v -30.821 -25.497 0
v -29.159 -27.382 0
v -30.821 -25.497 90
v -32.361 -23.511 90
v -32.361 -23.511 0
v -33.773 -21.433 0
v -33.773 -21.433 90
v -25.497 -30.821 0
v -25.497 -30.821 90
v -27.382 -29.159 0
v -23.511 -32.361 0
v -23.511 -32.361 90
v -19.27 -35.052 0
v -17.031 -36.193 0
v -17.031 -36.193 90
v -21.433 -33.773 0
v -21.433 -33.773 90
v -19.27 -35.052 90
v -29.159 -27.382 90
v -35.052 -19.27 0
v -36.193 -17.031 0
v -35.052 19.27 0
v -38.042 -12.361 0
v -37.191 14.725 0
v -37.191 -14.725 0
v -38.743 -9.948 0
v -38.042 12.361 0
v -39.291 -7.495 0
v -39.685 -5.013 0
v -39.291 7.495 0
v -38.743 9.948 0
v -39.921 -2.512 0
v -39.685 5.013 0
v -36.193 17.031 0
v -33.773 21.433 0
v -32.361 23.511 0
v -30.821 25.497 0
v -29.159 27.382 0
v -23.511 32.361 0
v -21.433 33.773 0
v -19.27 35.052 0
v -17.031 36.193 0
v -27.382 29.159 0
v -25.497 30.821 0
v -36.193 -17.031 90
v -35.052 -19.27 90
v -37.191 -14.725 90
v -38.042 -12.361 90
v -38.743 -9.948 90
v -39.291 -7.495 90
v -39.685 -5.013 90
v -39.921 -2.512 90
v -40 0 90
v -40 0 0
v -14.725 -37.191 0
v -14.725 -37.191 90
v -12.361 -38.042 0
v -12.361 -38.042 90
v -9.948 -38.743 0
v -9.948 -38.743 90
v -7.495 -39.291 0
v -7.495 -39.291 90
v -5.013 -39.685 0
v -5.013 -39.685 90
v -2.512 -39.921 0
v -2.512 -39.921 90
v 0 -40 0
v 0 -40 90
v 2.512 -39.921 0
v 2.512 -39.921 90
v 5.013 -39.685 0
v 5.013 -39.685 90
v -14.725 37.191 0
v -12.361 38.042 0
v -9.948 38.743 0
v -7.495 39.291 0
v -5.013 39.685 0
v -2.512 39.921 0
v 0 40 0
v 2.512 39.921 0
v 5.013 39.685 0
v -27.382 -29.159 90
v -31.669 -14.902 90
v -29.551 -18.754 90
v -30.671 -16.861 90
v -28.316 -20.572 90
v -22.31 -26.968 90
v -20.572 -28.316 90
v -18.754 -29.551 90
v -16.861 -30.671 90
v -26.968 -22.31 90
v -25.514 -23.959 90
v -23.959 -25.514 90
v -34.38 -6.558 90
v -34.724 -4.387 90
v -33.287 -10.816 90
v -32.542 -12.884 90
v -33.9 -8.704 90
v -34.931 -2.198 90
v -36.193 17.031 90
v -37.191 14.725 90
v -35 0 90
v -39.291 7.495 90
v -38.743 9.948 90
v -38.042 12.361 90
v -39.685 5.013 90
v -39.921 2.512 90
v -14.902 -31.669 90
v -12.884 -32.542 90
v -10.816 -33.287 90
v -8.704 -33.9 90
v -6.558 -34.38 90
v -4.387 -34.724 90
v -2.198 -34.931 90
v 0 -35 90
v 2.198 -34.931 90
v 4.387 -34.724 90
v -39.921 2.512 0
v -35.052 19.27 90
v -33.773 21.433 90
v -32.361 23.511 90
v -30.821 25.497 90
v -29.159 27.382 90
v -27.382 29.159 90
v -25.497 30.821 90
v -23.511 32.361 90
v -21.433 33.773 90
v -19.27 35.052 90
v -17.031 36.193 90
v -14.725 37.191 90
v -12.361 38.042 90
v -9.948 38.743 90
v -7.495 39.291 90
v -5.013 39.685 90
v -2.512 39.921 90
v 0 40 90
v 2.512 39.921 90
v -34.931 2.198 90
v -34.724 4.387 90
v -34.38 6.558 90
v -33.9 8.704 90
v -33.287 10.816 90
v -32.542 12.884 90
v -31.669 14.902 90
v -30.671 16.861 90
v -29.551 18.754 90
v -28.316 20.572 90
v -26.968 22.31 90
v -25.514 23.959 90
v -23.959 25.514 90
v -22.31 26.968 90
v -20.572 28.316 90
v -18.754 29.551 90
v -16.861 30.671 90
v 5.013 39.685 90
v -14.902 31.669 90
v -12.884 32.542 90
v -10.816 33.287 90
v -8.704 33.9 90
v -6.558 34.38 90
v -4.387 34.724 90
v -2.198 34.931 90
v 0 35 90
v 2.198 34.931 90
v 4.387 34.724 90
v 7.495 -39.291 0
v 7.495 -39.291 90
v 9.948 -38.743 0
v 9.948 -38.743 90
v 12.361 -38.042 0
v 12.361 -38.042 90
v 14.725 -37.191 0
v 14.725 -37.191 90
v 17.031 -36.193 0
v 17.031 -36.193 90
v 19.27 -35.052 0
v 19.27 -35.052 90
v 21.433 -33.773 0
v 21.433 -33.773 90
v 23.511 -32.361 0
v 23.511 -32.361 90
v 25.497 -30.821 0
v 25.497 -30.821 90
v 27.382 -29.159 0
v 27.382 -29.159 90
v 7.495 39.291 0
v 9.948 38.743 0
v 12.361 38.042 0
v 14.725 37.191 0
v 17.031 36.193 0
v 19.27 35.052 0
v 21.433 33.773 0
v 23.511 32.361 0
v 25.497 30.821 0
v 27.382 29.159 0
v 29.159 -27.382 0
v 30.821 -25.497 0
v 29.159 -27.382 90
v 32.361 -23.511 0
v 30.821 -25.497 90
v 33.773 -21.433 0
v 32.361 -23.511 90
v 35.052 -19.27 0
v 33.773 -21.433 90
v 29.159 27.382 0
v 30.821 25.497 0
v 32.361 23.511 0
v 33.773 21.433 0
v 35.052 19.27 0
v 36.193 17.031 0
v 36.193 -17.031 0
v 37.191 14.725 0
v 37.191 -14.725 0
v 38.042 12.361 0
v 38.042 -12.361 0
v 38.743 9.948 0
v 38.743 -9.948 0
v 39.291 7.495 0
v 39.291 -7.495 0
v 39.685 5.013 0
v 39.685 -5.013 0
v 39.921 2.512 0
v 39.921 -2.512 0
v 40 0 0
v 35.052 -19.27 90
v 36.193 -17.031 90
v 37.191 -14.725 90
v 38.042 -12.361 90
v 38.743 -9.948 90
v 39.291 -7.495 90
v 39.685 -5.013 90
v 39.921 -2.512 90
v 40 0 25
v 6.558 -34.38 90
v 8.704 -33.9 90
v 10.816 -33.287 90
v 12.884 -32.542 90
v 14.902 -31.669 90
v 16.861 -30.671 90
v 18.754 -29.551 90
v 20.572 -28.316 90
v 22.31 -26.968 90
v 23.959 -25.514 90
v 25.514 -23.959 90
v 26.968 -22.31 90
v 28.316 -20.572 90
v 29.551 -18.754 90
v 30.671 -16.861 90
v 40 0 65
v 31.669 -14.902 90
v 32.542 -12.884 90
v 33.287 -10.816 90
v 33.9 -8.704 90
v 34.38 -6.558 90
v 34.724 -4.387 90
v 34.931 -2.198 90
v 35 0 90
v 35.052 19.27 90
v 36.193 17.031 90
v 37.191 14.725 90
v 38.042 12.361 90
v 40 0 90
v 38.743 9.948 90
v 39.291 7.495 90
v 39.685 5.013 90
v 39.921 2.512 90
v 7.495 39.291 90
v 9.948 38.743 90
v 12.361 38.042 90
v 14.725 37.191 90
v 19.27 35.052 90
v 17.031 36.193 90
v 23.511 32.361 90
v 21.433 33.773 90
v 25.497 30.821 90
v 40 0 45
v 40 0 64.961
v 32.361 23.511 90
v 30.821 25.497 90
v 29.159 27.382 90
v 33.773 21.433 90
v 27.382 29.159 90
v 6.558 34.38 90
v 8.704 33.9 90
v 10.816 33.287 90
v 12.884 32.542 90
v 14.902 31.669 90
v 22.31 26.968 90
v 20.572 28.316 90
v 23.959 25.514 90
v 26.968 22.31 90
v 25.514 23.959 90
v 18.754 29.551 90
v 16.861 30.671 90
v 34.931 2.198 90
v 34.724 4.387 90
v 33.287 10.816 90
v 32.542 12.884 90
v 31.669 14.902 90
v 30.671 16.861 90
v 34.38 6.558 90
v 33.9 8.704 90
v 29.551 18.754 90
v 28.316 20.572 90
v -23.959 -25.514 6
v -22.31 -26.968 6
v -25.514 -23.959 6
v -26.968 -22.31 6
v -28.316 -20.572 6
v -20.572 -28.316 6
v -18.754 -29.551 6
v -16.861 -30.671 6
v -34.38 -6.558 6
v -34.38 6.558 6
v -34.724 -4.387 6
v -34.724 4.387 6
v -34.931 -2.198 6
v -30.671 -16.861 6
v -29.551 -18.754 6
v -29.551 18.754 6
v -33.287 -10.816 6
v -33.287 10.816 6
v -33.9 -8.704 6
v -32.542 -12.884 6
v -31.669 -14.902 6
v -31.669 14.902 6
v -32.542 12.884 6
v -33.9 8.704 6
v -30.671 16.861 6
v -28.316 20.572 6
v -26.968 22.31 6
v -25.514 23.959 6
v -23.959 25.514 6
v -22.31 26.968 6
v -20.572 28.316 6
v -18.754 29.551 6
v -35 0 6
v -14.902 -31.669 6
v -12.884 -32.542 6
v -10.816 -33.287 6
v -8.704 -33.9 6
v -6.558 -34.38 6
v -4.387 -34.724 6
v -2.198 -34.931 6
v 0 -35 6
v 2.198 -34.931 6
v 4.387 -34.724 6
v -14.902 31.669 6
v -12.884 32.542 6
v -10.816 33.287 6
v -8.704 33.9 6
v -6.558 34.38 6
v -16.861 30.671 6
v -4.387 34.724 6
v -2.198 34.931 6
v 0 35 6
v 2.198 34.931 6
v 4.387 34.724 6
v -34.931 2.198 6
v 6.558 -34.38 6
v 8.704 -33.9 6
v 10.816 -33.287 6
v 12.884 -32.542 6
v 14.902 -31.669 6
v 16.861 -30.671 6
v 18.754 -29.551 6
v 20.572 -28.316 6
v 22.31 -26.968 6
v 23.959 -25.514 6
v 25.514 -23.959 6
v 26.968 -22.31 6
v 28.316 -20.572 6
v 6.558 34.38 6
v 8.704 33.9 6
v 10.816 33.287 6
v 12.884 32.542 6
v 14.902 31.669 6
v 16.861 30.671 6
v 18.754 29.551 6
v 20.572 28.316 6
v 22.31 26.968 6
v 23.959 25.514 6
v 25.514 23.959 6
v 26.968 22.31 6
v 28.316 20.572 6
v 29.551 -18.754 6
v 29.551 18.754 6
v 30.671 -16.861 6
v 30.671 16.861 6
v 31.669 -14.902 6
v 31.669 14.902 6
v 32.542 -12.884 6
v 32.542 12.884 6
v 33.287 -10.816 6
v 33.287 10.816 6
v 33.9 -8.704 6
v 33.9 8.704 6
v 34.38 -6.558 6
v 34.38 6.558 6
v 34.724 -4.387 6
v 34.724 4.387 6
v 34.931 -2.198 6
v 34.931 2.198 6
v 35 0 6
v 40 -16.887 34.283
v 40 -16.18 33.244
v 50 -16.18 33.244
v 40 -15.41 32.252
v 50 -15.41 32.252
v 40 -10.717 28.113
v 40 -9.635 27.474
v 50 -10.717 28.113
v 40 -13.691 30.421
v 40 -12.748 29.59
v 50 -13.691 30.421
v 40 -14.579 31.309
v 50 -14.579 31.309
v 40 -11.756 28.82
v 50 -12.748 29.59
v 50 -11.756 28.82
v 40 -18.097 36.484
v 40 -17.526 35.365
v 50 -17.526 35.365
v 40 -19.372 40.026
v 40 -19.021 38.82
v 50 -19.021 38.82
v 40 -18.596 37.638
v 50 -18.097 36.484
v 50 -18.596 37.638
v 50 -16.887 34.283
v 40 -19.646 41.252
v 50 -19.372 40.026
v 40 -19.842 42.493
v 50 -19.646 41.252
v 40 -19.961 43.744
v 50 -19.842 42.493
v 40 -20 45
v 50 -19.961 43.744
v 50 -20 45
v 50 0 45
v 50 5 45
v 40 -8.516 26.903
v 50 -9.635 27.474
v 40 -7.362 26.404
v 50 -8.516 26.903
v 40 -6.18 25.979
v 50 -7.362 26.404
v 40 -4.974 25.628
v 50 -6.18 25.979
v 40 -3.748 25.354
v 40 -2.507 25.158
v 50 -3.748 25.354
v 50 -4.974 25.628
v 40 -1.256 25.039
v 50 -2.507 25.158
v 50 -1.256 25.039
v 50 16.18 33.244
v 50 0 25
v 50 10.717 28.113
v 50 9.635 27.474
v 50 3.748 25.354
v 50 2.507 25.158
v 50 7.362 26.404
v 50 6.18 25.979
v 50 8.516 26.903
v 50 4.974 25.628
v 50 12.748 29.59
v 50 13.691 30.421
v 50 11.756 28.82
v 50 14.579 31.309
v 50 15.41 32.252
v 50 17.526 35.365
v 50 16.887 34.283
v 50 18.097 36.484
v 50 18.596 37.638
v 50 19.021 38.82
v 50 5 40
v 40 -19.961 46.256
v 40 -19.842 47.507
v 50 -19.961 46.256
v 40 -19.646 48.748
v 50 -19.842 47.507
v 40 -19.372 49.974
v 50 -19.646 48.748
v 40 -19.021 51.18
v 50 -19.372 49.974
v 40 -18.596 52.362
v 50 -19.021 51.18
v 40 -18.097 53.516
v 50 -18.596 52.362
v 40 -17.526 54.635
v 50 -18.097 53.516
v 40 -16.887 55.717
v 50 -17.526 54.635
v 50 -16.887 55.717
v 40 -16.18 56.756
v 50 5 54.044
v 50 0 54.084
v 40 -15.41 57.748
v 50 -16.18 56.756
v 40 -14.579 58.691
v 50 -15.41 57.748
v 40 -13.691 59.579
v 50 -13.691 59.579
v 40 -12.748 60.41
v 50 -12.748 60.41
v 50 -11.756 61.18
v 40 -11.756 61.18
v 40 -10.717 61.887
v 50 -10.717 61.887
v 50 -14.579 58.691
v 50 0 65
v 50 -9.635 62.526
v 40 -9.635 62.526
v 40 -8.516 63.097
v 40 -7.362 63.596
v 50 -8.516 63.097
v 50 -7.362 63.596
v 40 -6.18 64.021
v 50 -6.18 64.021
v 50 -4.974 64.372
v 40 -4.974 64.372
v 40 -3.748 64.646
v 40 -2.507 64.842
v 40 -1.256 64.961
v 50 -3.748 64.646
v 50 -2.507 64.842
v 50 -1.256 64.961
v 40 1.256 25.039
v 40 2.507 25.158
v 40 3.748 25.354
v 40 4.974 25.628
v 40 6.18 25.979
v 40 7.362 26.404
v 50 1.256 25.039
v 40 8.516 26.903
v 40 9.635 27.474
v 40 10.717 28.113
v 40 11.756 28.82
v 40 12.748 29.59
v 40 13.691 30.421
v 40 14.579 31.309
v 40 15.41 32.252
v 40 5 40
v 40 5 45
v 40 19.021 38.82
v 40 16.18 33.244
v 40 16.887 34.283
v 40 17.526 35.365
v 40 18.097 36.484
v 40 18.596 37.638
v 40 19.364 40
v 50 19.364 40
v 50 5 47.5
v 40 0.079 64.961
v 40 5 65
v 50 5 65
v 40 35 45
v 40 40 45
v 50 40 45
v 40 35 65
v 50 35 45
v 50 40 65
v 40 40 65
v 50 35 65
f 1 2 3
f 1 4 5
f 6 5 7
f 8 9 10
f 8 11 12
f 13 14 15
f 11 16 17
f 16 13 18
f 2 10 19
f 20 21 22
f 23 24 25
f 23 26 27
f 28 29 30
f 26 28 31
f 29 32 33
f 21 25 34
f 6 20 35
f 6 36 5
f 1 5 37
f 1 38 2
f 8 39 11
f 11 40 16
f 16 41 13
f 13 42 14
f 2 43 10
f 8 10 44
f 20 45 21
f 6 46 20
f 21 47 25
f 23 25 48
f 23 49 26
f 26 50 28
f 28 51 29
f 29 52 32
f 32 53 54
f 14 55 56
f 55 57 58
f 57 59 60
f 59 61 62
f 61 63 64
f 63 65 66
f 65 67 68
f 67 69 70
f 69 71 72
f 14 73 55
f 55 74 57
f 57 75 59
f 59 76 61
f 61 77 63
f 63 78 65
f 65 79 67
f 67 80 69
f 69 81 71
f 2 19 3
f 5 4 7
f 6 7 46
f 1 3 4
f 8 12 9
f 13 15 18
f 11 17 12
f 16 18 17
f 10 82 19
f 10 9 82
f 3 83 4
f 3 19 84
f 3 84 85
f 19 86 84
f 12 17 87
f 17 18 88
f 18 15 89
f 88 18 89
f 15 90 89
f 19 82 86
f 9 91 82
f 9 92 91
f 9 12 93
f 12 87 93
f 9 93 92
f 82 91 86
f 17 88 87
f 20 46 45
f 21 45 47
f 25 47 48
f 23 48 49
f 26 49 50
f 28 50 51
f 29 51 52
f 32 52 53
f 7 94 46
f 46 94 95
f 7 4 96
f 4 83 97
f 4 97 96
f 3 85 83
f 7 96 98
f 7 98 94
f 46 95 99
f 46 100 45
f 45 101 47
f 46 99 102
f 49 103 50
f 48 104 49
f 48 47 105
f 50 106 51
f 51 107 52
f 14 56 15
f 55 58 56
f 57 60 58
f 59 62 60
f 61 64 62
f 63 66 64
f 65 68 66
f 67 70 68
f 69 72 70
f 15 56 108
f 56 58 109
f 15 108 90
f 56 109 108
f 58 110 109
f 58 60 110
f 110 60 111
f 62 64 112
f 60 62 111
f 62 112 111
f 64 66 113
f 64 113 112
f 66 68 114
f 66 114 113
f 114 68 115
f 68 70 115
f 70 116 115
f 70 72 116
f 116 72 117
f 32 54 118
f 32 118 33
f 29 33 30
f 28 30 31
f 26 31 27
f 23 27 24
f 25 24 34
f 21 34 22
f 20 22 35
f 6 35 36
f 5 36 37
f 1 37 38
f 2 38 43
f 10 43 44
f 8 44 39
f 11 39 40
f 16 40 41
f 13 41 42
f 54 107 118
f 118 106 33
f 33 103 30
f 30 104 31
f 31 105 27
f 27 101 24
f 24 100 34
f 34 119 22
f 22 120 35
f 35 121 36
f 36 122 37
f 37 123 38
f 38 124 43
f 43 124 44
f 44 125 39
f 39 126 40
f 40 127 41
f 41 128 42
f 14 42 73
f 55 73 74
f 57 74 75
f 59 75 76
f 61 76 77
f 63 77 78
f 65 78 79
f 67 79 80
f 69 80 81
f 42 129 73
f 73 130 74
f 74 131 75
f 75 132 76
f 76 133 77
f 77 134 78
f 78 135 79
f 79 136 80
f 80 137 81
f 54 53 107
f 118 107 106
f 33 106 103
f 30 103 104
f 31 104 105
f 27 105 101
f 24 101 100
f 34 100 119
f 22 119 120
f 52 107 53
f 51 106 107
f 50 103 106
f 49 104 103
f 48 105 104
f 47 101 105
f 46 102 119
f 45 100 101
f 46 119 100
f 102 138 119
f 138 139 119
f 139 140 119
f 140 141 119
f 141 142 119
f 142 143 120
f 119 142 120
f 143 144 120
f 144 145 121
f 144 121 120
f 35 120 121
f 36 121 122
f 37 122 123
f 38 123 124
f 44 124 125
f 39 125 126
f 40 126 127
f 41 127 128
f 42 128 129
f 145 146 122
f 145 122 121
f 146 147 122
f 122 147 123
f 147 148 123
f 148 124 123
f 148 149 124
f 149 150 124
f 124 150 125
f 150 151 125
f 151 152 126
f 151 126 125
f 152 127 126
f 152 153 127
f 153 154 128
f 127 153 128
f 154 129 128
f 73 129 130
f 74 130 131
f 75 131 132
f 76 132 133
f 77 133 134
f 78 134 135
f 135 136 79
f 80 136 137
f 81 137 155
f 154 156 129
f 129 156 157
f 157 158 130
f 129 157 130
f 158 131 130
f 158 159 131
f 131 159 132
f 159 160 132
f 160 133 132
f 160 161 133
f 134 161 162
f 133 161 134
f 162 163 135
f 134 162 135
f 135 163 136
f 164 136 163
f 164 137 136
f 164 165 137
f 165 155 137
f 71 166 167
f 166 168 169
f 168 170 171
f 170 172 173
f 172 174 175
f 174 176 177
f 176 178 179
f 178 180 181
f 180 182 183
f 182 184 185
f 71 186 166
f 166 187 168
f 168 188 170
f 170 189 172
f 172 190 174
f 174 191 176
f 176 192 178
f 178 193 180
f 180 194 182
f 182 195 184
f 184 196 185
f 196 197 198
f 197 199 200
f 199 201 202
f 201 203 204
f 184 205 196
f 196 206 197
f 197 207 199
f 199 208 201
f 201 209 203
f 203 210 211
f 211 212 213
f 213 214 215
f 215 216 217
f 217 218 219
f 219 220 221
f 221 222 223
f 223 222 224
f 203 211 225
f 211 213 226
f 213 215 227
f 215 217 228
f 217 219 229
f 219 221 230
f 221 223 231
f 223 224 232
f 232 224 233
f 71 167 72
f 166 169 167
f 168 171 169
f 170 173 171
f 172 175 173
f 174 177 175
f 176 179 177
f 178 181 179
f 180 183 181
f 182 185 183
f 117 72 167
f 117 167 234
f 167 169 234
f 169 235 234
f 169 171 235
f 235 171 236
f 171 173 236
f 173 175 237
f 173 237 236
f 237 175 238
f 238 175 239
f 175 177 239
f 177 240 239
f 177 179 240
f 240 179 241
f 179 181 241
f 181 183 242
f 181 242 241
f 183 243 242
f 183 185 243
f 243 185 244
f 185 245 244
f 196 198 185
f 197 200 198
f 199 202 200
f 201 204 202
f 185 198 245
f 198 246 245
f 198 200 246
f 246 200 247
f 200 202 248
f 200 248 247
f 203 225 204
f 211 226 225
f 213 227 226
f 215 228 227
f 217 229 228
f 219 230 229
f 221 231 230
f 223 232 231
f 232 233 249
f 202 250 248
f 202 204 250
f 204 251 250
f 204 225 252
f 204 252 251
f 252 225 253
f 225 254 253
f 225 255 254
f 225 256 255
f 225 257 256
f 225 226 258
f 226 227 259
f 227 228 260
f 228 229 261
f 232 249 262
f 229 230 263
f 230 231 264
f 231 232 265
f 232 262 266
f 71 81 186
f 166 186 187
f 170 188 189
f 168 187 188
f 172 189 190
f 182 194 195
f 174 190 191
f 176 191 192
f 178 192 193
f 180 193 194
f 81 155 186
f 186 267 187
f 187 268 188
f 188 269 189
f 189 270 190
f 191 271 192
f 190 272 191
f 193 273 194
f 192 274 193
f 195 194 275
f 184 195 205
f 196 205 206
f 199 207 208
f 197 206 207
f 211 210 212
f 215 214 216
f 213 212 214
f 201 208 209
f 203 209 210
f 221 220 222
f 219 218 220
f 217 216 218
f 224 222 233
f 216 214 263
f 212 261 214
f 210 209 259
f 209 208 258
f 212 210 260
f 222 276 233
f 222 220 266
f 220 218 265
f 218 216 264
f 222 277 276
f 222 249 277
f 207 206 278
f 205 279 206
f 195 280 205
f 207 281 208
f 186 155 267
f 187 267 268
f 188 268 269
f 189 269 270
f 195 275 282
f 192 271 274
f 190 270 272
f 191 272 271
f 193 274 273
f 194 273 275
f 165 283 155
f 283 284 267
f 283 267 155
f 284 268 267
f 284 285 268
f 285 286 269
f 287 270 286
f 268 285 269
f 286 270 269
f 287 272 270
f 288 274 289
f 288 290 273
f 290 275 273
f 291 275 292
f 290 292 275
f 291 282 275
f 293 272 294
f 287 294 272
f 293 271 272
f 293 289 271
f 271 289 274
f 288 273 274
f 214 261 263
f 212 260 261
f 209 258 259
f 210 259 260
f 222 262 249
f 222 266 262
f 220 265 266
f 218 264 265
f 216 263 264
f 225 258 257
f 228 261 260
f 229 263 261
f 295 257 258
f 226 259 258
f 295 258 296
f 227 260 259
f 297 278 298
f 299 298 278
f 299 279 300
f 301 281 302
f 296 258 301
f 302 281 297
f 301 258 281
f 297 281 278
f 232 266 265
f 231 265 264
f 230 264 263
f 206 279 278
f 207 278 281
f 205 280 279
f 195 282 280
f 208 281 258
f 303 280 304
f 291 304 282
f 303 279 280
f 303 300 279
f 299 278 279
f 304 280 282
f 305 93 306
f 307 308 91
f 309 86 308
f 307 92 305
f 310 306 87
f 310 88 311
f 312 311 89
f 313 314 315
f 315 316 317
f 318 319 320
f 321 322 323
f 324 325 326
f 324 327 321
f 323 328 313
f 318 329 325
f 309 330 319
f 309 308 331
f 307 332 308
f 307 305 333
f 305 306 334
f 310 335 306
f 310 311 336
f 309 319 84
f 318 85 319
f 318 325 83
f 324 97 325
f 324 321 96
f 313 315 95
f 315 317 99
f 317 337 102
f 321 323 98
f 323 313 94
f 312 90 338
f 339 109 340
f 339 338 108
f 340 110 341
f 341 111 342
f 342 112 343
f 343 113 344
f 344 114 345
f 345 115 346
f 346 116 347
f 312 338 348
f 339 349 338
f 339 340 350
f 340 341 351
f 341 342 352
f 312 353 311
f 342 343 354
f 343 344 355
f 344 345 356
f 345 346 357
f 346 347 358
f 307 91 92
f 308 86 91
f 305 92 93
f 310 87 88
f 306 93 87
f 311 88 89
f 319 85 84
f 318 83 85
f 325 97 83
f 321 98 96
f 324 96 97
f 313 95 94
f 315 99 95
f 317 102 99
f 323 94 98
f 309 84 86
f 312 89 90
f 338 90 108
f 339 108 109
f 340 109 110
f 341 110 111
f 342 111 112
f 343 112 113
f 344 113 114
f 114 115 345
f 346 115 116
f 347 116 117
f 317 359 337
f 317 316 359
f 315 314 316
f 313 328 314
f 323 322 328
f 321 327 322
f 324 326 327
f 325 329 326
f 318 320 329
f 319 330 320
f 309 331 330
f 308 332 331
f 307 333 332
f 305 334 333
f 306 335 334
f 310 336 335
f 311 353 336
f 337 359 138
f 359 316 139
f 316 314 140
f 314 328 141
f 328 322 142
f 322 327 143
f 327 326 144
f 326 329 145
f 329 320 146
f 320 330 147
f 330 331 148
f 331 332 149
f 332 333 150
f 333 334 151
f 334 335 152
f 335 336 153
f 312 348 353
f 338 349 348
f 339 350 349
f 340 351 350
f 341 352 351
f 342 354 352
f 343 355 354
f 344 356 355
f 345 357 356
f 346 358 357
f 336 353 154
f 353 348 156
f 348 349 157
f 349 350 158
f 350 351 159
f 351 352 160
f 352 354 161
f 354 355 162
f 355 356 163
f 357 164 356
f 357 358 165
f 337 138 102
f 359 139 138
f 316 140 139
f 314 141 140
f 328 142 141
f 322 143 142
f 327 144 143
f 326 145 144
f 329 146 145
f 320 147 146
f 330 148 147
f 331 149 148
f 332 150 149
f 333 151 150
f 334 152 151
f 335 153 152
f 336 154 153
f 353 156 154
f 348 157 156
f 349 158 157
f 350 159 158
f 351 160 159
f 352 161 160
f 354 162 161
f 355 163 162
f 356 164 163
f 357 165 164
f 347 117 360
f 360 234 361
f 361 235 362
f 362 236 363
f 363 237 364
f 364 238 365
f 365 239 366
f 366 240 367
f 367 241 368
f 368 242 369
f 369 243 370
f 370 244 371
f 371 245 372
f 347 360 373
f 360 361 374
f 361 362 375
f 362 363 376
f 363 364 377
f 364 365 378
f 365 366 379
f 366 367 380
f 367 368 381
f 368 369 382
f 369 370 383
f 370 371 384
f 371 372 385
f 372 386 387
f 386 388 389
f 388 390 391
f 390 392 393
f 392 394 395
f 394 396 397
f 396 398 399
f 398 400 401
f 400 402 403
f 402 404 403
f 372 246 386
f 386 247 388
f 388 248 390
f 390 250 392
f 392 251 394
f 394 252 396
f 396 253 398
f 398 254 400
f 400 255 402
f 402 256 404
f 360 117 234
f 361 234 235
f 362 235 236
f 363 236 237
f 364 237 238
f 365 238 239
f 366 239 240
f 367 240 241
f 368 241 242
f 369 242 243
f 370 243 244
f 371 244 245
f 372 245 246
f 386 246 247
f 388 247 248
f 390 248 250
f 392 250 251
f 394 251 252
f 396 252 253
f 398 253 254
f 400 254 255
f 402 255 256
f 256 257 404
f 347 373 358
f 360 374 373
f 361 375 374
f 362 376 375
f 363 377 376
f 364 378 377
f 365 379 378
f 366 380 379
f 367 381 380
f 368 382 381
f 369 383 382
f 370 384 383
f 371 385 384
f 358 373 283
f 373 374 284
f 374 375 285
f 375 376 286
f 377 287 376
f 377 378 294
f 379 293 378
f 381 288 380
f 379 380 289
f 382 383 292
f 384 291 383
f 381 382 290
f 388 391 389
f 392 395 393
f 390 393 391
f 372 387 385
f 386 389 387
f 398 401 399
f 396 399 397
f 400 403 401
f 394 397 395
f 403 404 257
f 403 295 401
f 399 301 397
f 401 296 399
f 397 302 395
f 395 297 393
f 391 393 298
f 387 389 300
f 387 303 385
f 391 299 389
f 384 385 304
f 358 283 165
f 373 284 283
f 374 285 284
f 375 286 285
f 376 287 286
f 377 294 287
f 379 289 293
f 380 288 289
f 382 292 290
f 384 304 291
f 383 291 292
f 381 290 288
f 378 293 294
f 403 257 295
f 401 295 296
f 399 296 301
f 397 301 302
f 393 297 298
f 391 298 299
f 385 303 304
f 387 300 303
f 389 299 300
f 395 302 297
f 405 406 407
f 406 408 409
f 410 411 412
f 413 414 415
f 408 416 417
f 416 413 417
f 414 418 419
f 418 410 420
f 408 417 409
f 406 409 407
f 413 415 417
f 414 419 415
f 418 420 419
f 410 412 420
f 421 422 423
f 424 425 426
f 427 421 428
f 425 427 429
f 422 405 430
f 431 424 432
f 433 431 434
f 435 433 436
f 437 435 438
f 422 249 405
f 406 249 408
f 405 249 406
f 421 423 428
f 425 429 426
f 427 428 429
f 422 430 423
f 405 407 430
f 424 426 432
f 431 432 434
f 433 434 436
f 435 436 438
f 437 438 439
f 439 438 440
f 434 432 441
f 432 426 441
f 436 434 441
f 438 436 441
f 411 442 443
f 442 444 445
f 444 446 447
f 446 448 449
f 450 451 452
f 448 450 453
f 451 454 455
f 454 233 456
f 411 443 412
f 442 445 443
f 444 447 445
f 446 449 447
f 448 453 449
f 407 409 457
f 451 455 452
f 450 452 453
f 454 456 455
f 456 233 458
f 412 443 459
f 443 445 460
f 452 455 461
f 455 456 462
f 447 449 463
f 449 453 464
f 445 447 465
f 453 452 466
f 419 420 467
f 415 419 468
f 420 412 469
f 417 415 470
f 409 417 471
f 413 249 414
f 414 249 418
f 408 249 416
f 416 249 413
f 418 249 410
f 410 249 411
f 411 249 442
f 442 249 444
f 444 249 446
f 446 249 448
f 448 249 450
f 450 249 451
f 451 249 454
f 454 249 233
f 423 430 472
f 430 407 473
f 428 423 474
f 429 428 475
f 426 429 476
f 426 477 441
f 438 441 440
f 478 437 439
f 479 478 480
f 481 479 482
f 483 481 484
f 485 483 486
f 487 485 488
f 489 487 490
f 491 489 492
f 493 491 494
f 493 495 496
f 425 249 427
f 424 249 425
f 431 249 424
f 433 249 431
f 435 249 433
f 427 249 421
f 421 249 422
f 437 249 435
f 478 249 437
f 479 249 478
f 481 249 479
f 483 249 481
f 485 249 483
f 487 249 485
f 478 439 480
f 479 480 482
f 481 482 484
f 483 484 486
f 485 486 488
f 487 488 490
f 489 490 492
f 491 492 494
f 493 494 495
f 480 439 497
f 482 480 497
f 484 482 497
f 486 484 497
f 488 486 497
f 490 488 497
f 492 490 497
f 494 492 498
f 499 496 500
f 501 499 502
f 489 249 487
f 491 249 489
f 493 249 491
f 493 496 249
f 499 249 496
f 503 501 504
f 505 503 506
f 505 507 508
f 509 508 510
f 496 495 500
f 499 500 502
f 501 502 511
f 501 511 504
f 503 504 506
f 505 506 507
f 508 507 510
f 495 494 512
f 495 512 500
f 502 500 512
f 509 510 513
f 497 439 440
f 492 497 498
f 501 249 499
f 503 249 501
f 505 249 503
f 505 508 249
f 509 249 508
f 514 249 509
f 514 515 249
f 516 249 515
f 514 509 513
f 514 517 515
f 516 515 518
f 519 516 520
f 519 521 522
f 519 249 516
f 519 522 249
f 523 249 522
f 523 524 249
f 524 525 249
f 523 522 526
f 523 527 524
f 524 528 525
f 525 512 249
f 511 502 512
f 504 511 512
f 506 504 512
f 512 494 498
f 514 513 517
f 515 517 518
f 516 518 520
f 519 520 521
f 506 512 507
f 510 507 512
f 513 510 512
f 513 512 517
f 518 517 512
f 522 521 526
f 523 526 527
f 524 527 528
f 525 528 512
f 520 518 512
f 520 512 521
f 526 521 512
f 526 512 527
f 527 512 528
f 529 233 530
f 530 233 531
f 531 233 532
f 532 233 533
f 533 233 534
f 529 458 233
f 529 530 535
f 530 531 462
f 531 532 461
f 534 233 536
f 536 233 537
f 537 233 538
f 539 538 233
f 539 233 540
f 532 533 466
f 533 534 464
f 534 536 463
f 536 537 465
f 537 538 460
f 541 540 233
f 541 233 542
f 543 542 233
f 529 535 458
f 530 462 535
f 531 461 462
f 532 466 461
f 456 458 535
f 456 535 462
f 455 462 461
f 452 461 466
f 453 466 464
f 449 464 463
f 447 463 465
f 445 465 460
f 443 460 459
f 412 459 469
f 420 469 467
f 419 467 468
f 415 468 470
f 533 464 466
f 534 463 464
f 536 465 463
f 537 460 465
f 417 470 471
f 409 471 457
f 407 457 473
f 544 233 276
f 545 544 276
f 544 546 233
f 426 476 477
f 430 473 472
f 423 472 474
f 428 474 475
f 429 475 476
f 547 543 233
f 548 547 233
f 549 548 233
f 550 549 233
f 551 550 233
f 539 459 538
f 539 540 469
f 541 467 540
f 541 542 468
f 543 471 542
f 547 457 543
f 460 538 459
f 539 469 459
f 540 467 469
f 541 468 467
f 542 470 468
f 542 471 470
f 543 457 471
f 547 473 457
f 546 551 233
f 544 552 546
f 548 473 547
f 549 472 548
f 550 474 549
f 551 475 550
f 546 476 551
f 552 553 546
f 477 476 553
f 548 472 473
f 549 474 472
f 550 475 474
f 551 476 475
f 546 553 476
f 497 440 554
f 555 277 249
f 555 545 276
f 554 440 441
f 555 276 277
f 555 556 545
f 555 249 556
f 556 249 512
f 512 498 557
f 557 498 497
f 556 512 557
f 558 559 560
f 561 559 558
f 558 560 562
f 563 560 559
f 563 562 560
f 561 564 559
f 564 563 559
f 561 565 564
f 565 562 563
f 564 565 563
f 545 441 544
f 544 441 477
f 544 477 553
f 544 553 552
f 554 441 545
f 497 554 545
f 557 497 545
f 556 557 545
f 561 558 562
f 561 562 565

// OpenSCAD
// マグカップの設定
$fn = 100;

module mug() {
    union() {
        // 本体
        difference() {
            cylinder(d = 80, h = 90);
            translate([0, 0, 6])
                cylinder(d = 70, h = 85);
        }

        // 取手
        // 本体外径80mm (半径40mm) の +X 側に配置
        translate([40, 0, 45]) {
            rotate([0, 90, 0]) {
                difference() {
                    // 取手の外形 (D字形状)
                    union() {
                        cylinder(d = 40, h = 10);
                        translate([-20, 0, 0])
                            cube([20, 40, 10]);
                    }
                    // 取手の穴 (高さ30mm x 幅25mm)
                    translate([-20, 5, -1])
                        cube([25, 30, 12]);
                }
            }
        }
    }
}

mug();
